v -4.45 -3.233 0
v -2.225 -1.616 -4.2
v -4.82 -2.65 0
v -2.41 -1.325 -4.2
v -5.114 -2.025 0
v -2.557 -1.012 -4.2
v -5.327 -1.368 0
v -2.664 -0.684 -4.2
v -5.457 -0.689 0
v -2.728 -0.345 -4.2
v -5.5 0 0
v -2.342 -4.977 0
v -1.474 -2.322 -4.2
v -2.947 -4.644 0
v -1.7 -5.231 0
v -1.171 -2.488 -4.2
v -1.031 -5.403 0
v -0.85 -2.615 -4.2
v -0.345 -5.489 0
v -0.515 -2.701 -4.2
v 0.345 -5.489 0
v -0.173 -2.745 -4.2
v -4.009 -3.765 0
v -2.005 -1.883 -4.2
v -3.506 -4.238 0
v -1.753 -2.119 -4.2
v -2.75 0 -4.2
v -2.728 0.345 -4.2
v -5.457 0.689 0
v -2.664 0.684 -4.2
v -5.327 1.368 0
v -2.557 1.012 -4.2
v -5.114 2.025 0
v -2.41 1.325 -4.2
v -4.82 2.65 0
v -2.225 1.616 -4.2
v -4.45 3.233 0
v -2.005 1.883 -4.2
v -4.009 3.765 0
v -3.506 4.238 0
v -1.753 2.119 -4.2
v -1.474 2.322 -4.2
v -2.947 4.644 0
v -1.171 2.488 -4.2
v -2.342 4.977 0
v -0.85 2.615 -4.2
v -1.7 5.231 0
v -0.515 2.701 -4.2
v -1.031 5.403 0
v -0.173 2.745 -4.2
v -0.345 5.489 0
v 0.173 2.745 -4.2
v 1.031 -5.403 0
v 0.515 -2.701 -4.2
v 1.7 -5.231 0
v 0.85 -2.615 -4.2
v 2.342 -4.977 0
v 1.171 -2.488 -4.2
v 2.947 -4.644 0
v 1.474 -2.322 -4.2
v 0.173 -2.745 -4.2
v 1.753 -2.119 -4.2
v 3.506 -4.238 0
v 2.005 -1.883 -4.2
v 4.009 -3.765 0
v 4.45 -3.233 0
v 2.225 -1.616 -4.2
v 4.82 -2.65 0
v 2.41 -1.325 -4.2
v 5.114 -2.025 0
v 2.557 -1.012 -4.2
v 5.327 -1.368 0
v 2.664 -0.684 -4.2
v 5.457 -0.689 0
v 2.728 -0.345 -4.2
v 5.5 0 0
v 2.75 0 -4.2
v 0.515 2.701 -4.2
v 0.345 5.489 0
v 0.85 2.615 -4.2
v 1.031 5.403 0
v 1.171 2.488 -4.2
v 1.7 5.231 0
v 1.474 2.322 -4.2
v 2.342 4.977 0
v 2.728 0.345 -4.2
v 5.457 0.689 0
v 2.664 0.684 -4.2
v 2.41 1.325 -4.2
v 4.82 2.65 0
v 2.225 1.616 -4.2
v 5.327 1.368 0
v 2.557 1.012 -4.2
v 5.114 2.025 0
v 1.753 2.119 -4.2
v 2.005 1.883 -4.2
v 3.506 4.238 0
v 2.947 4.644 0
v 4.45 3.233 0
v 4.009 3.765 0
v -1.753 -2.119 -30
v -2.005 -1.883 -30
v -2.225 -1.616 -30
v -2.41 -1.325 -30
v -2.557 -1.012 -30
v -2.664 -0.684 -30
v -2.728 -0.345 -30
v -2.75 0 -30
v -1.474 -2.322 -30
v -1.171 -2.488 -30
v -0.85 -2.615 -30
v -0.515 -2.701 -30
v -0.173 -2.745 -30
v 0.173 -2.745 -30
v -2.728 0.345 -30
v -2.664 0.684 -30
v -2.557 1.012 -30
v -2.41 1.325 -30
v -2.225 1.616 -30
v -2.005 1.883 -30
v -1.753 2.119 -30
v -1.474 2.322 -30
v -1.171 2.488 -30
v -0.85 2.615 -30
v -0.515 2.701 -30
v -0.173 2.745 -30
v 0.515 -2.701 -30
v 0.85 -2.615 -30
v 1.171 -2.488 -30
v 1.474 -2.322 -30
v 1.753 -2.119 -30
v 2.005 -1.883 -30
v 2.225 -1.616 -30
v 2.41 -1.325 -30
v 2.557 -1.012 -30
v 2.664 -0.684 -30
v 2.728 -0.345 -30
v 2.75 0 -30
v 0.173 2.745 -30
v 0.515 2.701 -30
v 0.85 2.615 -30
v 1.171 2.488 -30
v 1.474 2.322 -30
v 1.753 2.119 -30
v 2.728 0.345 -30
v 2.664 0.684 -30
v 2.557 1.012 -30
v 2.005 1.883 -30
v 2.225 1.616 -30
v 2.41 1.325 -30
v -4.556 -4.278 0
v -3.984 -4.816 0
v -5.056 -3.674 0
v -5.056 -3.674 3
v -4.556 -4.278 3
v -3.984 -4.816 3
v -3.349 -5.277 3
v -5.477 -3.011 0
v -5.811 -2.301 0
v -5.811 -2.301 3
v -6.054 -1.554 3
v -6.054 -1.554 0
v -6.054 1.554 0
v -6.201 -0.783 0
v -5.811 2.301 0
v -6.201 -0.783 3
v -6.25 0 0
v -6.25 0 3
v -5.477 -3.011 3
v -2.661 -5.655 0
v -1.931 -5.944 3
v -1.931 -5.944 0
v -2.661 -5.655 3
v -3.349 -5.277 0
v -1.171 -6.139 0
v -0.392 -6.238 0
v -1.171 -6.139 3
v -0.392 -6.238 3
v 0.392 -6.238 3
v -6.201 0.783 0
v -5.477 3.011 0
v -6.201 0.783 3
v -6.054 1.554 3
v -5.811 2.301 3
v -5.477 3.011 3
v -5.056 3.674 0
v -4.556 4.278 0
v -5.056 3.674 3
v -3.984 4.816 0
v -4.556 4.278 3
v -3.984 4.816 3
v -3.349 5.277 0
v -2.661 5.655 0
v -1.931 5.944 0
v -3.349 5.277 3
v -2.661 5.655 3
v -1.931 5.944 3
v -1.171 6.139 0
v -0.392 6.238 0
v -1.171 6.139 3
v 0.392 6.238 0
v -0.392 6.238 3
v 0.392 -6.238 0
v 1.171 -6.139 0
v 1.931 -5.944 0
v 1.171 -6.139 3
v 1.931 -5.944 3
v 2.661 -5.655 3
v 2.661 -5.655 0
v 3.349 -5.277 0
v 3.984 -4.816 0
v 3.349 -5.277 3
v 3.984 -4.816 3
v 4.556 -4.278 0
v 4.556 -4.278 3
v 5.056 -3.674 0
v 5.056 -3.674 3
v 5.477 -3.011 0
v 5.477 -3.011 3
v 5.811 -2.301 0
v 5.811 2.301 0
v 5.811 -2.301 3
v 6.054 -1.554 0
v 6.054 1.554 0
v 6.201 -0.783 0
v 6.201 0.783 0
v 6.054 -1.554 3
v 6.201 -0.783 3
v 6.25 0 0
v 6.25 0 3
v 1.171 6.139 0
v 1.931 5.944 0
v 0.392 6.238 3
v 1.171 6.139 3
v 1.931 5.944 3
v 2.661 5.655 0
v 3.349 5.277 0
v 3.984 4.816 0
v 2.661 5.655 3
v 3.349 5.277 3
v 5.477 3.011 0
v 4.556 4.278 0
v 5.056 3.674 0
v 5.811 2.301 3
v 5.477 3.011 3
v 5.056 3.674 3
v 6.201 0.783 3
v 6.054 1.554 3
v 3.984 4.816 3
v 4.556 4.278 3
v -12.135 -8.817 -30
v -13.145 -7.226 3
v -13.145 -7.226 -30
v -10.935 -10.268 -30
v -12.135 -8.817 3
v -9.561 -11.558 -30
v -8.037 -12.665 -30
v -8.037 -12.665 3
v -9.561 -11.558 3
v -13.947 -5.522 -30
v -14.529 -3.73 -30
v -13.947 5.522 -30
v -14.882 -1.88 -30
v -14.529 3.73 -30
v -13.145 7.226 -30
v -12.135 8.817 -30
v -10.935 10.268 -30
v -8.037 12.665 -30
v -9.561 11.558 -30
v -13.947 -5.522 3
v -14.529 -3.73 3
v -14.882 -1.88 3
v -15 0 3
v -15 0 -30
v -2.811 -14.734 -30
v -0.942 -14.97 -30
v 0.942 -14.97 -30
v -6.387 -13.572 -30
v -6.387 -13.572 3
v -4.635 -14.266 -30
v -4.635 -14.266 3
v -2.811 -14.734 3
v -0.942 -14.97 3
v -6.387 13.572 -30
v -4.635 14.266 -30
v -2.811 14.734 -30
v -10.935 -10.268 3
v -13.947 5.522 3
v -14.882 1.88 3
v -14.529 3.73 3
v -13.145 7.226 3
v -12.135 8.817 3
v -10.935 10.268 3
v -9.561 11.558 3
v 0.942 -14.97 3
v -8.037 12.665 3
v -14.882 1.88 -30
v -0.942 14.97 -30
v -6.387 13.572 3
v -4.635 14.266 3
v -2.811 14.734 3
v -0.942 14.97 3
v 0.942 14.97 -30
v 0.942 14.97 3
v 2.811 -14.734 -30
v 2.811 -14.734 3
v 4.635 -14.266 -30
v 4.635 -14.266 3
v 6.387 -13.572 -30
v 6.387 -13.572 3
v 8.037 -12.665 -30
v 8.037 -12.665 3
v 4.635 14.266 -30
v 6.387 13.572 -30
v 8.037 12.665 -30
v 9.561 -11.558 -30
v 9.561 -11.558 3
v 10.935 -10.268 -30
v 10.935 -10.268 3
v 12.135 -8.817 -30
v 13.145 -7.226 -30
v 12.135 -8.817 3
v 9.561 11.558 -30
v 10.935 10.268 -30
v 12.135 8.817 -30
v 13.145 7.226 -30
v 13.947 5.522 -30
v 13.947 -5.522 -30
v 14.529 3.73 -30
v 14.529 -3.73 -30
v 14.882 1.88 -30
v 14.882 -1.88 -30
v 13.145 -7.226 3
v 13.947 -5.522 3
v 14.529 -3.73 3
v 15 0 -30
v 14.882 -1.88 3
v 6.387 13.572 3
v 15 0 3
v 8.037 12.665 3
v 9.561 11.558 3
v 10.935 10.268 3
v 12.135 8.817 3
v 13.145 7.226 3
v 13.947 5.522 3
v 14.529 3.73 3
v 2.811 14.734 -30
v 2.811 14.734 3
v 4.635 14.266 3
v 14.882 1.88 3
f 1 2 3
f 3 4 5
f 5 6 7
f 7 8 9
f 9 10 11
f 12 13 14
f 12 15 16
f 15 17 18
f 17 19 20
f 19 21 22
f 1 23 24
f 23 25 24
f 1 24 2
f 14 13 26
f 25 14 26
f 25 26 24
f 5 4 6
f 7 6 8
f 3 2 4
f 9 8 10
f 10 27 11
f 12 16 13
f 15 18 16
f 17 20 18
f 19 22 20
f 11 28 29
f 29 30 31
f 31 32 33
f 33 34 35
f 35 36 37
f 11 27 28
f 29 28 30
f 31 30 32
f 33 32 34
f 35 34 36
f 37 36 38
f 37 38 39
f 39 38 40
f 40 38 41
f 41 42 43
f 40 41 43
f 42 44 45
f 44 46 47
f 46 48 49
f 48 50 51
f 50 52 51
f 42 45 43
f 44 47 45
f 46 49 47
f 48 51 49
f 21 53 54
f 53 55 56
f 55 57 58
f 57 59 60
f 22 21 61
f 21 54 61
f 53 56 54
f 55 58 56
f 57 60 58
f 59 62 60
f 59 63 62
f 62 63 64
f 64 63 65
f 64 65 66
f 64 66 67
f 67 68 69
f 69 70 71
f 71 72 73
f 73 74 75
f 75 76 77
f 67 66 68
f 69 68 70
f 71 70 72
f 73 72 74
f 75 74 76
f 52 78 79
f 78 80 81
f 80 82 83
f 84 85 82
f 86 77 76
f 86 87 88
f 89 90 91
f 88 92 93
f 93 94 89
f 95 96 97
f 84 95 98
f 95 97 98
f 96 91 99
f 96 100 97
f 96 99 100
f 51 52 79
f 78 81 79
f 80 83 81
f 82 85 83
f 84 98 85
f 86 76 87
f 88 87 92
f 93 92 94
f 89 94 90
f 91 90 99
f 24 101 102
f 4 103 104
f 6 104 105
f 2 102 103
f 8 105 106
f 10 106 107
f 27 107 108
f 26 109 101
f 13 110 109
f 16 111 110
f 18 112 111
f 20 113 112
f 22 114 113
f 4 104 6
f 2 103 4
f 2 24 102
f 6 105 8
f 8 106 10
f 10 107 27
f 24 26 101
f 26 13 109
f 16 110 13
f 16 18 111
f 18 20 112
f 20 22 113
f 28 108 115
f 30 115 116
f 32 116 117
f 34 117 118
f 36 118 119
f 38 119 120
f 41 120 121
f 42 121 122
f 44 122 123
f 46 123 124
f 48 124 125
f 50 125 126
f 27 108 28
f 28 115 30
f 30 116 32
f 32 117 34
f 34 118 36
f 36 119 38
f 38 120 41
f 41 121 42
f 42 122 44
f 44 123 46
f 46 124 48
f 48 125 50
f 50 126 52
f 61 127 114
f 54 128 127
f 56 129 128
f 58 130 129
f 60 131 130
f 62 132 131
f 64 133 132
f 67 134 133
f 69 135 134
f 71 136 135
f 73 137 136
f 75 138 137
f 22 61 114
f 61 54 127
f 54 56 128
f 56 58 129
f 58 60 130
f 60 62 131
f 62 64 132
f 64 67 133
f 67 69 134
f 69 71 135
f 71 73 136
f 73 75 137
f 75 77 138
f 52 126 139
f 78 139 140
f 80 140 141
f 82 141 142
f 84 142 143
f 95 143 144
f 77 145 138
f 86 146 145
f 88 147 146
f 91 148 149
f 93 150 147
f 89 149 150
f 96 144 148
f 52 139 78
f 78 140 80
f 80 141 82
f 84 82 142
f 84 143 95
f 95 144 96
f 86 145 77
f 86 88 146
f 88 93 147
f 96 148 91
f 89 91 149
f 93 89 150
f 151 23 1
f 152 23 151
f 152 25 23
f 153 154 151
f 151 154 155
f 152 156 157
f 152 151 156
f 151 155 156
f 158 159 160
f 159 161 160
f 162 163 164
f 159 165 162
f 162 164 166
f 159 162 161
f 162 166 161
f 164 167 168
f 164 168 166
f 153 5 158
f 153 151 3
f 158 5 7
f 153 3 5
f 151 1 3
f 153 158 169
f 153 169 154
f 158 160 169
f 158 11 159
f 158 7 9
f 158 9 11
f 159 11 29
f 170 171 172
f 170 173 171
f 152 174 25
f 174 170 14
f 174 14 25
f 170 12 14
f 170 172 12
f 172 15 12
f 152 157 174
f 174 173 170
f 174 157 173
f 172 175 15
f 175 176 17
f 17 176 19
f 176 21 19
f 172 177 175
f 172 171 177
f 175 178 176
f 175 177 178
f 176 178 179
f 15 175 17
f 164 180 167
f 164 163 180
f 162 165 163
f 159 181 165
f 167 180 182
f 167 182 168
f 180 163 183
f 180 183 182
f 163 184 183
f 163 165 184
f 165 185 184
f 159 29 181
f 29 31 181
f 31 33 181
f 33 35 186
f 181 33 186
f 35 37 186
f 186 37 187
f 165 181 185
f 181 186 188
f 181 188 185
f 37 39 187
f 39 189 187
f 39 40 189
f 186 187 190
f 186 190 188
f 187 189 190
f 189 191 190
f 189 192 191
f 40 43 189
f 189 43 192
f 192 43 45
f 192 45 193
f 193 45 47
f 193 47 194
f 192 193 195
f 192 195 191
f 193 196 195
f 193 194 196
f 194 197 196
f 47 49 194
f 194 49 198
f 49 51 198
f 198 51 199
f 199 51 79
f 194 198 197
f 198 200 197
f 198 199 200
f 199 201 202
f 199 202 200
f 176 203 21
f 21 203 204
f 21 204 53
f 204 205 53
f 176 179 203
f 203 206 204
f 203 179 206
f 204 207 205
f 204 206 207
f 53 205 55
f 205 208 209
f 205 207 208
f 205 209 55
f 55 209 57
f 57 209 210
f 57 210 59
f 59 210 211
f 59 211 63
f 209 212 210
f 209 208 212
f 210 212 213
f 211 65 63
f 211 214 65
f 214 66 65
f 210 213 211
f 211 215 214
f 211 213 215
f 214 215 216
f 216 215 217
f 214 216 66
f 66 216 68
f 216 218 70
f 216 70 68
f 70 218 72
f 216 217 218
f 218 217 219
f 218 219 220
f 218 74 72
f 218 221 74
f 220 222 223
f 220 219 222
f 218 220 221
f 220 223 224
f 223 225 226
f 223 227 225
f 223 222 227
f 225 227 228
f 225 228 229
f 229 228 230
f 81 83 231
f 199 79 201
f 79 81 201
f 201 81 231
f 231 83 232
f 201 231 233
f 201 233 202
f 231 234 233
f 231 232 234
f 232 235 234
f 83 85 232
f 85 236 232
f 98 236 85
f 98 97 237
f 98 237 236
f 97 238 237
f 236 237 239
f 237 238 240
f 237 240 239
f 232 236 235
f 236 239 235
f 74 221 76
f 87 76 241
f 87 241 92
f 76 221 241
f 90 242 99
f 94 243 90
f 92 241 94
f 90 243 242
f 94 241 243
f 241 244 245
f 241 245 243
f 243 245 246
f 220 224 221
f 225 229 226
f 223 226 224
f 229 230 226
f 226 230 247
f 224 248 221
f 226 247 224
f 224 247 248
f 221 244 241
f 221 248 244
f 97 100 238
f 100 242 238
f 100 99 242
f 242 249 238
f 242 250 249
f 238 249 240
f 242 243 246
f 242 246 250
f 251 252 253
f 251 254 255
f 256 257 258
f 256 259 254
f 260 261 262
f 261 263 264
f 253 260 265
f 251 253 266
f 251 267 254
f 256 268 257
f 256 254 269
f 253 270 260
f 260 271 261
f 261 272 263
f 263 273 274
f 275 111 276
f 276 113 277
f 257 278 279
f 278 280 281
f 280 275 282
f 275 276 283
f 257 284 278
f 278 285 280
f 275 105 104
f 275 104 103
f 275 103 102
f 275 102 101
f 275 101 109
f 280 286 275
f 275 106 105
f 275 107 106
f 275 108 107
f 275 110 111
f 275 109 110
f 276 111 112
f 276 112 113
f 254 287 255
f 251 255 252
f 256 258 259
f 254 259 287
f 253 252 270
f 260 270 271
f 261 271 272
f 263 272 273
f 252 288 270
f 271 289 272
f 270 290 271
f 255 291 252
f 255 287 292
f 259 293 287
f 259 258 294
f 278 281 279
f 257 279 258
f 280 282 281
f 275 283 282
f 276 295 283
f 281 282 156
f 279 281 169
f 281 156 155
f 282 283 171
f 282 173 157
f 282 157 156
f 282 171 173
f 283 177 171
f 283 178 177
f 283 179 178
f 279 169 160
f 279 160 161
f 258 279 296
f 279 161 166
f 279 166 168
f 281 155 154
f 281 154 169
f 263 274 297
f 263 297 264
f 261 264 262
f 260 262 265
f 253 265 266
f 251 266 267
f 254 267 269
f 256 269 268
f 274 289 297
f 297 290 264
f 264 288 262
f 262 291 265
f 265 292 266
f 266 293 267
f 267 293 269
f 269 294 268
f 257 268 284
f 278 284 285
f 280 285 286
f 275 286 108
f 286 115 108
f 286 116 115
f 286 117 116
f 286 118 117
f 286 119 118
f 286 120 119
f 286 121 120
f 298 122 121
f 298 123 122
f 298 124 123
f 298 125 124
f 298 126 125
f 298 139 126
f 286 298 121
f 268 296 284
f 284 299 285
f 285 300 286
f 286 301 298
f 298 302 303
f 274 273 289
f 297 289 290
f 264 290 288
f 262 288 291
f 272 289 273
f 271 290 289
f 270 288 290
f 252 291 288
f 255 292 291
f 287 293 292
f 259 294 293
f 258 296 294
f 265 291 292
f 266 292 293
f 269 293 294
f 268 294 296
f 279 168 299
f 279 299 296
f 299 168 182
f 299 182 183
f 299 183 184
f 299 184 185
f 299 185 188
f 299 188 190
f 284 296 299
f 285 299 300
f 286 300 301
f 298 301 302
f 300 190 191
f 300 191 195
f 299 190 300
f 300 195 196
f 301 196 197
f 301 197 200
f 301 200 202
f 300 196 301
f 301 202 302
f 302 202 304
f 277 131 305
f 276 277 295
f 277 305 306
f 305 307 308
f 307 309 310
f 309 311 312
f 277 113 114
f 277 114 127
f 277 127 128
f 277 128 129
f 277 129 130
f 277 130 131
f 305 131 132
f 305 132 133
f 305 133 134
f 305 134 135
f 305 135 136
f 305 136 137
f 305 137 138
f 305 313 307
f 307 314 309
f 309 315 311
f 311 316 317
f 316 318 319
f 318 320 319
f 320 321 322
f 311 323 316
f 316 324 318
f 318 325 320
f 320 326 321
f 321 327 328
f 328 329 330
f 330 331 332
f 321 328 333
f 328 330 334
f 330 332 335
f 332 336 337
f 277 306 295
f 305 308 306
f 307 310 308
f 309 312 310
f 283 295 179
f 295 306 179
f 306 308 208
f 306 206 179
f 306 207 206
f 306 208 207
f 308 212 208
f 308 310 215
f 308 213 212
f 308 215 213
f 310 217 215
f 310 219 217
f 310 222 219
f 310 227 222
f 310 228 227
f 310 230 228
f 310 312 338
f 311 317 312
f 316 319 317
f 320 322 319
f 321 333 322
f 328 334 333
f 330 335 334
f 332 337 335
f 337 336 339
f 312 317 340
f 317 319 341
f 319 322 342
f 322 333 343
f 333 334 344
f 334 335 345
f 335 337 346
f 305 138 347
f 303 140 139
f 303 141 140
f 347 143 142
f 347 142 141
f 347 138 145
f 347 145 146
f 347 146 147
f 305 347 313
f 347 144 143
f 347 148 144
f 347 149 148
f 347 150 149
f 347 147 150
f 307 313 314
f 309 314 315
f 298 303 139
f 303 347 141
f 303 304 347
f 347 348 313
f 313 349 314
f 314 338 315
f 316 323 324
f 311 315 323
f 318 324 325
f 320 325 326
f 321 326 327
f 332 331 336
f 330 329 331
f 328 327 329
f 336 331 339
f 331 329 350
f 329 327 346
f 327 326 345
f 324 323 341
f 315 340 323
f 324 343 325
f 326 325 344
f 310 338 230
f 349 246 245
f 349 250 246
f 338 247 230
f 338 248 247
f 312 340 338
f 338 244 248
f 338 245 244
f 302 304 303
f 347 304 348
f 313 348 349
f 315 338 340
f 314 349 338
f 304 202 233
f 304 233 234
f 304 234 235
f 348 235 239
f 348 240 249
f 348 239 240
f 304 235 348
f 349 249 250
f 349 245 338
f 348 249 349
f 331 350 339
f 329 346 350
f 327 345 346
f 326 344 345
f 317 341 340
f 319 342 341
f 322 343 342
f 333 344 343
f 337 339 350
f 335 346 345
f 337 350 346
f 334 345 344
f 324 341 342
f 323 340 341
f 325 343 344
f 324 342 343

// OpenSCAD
$fn = 50;

difference() {
	union() {
		translate(v = [0, 0, -30.0]) {
			cylinder(h = 33, r = 15.0);
		}
	}
	union() {
		translate(v = [0, 0, 0]) {
			rotate(a = [0, 0, 0]) {
				difference() {
					union() {
						translate(v = [0, 0, -33.0]) {
							cylinder(h = 33, r = 2.25);
						}
						translate(v = [0, 0, -4.2]) {
							cylinder(h = 4.2, r1 = 2.75, r2 = 5.5);
						}
						translate(v = [0, 0, -33.0]) {
							cylinder(h = 33, r = 2.75);
						}
						translate(v = [0, 0, -33.0]) {
							cylinder(h = 33, r = 2.25);
						}
					}
					union();
				}
			}
		}
		#cylinder(h = 3, r = 6.25);
	}
}
